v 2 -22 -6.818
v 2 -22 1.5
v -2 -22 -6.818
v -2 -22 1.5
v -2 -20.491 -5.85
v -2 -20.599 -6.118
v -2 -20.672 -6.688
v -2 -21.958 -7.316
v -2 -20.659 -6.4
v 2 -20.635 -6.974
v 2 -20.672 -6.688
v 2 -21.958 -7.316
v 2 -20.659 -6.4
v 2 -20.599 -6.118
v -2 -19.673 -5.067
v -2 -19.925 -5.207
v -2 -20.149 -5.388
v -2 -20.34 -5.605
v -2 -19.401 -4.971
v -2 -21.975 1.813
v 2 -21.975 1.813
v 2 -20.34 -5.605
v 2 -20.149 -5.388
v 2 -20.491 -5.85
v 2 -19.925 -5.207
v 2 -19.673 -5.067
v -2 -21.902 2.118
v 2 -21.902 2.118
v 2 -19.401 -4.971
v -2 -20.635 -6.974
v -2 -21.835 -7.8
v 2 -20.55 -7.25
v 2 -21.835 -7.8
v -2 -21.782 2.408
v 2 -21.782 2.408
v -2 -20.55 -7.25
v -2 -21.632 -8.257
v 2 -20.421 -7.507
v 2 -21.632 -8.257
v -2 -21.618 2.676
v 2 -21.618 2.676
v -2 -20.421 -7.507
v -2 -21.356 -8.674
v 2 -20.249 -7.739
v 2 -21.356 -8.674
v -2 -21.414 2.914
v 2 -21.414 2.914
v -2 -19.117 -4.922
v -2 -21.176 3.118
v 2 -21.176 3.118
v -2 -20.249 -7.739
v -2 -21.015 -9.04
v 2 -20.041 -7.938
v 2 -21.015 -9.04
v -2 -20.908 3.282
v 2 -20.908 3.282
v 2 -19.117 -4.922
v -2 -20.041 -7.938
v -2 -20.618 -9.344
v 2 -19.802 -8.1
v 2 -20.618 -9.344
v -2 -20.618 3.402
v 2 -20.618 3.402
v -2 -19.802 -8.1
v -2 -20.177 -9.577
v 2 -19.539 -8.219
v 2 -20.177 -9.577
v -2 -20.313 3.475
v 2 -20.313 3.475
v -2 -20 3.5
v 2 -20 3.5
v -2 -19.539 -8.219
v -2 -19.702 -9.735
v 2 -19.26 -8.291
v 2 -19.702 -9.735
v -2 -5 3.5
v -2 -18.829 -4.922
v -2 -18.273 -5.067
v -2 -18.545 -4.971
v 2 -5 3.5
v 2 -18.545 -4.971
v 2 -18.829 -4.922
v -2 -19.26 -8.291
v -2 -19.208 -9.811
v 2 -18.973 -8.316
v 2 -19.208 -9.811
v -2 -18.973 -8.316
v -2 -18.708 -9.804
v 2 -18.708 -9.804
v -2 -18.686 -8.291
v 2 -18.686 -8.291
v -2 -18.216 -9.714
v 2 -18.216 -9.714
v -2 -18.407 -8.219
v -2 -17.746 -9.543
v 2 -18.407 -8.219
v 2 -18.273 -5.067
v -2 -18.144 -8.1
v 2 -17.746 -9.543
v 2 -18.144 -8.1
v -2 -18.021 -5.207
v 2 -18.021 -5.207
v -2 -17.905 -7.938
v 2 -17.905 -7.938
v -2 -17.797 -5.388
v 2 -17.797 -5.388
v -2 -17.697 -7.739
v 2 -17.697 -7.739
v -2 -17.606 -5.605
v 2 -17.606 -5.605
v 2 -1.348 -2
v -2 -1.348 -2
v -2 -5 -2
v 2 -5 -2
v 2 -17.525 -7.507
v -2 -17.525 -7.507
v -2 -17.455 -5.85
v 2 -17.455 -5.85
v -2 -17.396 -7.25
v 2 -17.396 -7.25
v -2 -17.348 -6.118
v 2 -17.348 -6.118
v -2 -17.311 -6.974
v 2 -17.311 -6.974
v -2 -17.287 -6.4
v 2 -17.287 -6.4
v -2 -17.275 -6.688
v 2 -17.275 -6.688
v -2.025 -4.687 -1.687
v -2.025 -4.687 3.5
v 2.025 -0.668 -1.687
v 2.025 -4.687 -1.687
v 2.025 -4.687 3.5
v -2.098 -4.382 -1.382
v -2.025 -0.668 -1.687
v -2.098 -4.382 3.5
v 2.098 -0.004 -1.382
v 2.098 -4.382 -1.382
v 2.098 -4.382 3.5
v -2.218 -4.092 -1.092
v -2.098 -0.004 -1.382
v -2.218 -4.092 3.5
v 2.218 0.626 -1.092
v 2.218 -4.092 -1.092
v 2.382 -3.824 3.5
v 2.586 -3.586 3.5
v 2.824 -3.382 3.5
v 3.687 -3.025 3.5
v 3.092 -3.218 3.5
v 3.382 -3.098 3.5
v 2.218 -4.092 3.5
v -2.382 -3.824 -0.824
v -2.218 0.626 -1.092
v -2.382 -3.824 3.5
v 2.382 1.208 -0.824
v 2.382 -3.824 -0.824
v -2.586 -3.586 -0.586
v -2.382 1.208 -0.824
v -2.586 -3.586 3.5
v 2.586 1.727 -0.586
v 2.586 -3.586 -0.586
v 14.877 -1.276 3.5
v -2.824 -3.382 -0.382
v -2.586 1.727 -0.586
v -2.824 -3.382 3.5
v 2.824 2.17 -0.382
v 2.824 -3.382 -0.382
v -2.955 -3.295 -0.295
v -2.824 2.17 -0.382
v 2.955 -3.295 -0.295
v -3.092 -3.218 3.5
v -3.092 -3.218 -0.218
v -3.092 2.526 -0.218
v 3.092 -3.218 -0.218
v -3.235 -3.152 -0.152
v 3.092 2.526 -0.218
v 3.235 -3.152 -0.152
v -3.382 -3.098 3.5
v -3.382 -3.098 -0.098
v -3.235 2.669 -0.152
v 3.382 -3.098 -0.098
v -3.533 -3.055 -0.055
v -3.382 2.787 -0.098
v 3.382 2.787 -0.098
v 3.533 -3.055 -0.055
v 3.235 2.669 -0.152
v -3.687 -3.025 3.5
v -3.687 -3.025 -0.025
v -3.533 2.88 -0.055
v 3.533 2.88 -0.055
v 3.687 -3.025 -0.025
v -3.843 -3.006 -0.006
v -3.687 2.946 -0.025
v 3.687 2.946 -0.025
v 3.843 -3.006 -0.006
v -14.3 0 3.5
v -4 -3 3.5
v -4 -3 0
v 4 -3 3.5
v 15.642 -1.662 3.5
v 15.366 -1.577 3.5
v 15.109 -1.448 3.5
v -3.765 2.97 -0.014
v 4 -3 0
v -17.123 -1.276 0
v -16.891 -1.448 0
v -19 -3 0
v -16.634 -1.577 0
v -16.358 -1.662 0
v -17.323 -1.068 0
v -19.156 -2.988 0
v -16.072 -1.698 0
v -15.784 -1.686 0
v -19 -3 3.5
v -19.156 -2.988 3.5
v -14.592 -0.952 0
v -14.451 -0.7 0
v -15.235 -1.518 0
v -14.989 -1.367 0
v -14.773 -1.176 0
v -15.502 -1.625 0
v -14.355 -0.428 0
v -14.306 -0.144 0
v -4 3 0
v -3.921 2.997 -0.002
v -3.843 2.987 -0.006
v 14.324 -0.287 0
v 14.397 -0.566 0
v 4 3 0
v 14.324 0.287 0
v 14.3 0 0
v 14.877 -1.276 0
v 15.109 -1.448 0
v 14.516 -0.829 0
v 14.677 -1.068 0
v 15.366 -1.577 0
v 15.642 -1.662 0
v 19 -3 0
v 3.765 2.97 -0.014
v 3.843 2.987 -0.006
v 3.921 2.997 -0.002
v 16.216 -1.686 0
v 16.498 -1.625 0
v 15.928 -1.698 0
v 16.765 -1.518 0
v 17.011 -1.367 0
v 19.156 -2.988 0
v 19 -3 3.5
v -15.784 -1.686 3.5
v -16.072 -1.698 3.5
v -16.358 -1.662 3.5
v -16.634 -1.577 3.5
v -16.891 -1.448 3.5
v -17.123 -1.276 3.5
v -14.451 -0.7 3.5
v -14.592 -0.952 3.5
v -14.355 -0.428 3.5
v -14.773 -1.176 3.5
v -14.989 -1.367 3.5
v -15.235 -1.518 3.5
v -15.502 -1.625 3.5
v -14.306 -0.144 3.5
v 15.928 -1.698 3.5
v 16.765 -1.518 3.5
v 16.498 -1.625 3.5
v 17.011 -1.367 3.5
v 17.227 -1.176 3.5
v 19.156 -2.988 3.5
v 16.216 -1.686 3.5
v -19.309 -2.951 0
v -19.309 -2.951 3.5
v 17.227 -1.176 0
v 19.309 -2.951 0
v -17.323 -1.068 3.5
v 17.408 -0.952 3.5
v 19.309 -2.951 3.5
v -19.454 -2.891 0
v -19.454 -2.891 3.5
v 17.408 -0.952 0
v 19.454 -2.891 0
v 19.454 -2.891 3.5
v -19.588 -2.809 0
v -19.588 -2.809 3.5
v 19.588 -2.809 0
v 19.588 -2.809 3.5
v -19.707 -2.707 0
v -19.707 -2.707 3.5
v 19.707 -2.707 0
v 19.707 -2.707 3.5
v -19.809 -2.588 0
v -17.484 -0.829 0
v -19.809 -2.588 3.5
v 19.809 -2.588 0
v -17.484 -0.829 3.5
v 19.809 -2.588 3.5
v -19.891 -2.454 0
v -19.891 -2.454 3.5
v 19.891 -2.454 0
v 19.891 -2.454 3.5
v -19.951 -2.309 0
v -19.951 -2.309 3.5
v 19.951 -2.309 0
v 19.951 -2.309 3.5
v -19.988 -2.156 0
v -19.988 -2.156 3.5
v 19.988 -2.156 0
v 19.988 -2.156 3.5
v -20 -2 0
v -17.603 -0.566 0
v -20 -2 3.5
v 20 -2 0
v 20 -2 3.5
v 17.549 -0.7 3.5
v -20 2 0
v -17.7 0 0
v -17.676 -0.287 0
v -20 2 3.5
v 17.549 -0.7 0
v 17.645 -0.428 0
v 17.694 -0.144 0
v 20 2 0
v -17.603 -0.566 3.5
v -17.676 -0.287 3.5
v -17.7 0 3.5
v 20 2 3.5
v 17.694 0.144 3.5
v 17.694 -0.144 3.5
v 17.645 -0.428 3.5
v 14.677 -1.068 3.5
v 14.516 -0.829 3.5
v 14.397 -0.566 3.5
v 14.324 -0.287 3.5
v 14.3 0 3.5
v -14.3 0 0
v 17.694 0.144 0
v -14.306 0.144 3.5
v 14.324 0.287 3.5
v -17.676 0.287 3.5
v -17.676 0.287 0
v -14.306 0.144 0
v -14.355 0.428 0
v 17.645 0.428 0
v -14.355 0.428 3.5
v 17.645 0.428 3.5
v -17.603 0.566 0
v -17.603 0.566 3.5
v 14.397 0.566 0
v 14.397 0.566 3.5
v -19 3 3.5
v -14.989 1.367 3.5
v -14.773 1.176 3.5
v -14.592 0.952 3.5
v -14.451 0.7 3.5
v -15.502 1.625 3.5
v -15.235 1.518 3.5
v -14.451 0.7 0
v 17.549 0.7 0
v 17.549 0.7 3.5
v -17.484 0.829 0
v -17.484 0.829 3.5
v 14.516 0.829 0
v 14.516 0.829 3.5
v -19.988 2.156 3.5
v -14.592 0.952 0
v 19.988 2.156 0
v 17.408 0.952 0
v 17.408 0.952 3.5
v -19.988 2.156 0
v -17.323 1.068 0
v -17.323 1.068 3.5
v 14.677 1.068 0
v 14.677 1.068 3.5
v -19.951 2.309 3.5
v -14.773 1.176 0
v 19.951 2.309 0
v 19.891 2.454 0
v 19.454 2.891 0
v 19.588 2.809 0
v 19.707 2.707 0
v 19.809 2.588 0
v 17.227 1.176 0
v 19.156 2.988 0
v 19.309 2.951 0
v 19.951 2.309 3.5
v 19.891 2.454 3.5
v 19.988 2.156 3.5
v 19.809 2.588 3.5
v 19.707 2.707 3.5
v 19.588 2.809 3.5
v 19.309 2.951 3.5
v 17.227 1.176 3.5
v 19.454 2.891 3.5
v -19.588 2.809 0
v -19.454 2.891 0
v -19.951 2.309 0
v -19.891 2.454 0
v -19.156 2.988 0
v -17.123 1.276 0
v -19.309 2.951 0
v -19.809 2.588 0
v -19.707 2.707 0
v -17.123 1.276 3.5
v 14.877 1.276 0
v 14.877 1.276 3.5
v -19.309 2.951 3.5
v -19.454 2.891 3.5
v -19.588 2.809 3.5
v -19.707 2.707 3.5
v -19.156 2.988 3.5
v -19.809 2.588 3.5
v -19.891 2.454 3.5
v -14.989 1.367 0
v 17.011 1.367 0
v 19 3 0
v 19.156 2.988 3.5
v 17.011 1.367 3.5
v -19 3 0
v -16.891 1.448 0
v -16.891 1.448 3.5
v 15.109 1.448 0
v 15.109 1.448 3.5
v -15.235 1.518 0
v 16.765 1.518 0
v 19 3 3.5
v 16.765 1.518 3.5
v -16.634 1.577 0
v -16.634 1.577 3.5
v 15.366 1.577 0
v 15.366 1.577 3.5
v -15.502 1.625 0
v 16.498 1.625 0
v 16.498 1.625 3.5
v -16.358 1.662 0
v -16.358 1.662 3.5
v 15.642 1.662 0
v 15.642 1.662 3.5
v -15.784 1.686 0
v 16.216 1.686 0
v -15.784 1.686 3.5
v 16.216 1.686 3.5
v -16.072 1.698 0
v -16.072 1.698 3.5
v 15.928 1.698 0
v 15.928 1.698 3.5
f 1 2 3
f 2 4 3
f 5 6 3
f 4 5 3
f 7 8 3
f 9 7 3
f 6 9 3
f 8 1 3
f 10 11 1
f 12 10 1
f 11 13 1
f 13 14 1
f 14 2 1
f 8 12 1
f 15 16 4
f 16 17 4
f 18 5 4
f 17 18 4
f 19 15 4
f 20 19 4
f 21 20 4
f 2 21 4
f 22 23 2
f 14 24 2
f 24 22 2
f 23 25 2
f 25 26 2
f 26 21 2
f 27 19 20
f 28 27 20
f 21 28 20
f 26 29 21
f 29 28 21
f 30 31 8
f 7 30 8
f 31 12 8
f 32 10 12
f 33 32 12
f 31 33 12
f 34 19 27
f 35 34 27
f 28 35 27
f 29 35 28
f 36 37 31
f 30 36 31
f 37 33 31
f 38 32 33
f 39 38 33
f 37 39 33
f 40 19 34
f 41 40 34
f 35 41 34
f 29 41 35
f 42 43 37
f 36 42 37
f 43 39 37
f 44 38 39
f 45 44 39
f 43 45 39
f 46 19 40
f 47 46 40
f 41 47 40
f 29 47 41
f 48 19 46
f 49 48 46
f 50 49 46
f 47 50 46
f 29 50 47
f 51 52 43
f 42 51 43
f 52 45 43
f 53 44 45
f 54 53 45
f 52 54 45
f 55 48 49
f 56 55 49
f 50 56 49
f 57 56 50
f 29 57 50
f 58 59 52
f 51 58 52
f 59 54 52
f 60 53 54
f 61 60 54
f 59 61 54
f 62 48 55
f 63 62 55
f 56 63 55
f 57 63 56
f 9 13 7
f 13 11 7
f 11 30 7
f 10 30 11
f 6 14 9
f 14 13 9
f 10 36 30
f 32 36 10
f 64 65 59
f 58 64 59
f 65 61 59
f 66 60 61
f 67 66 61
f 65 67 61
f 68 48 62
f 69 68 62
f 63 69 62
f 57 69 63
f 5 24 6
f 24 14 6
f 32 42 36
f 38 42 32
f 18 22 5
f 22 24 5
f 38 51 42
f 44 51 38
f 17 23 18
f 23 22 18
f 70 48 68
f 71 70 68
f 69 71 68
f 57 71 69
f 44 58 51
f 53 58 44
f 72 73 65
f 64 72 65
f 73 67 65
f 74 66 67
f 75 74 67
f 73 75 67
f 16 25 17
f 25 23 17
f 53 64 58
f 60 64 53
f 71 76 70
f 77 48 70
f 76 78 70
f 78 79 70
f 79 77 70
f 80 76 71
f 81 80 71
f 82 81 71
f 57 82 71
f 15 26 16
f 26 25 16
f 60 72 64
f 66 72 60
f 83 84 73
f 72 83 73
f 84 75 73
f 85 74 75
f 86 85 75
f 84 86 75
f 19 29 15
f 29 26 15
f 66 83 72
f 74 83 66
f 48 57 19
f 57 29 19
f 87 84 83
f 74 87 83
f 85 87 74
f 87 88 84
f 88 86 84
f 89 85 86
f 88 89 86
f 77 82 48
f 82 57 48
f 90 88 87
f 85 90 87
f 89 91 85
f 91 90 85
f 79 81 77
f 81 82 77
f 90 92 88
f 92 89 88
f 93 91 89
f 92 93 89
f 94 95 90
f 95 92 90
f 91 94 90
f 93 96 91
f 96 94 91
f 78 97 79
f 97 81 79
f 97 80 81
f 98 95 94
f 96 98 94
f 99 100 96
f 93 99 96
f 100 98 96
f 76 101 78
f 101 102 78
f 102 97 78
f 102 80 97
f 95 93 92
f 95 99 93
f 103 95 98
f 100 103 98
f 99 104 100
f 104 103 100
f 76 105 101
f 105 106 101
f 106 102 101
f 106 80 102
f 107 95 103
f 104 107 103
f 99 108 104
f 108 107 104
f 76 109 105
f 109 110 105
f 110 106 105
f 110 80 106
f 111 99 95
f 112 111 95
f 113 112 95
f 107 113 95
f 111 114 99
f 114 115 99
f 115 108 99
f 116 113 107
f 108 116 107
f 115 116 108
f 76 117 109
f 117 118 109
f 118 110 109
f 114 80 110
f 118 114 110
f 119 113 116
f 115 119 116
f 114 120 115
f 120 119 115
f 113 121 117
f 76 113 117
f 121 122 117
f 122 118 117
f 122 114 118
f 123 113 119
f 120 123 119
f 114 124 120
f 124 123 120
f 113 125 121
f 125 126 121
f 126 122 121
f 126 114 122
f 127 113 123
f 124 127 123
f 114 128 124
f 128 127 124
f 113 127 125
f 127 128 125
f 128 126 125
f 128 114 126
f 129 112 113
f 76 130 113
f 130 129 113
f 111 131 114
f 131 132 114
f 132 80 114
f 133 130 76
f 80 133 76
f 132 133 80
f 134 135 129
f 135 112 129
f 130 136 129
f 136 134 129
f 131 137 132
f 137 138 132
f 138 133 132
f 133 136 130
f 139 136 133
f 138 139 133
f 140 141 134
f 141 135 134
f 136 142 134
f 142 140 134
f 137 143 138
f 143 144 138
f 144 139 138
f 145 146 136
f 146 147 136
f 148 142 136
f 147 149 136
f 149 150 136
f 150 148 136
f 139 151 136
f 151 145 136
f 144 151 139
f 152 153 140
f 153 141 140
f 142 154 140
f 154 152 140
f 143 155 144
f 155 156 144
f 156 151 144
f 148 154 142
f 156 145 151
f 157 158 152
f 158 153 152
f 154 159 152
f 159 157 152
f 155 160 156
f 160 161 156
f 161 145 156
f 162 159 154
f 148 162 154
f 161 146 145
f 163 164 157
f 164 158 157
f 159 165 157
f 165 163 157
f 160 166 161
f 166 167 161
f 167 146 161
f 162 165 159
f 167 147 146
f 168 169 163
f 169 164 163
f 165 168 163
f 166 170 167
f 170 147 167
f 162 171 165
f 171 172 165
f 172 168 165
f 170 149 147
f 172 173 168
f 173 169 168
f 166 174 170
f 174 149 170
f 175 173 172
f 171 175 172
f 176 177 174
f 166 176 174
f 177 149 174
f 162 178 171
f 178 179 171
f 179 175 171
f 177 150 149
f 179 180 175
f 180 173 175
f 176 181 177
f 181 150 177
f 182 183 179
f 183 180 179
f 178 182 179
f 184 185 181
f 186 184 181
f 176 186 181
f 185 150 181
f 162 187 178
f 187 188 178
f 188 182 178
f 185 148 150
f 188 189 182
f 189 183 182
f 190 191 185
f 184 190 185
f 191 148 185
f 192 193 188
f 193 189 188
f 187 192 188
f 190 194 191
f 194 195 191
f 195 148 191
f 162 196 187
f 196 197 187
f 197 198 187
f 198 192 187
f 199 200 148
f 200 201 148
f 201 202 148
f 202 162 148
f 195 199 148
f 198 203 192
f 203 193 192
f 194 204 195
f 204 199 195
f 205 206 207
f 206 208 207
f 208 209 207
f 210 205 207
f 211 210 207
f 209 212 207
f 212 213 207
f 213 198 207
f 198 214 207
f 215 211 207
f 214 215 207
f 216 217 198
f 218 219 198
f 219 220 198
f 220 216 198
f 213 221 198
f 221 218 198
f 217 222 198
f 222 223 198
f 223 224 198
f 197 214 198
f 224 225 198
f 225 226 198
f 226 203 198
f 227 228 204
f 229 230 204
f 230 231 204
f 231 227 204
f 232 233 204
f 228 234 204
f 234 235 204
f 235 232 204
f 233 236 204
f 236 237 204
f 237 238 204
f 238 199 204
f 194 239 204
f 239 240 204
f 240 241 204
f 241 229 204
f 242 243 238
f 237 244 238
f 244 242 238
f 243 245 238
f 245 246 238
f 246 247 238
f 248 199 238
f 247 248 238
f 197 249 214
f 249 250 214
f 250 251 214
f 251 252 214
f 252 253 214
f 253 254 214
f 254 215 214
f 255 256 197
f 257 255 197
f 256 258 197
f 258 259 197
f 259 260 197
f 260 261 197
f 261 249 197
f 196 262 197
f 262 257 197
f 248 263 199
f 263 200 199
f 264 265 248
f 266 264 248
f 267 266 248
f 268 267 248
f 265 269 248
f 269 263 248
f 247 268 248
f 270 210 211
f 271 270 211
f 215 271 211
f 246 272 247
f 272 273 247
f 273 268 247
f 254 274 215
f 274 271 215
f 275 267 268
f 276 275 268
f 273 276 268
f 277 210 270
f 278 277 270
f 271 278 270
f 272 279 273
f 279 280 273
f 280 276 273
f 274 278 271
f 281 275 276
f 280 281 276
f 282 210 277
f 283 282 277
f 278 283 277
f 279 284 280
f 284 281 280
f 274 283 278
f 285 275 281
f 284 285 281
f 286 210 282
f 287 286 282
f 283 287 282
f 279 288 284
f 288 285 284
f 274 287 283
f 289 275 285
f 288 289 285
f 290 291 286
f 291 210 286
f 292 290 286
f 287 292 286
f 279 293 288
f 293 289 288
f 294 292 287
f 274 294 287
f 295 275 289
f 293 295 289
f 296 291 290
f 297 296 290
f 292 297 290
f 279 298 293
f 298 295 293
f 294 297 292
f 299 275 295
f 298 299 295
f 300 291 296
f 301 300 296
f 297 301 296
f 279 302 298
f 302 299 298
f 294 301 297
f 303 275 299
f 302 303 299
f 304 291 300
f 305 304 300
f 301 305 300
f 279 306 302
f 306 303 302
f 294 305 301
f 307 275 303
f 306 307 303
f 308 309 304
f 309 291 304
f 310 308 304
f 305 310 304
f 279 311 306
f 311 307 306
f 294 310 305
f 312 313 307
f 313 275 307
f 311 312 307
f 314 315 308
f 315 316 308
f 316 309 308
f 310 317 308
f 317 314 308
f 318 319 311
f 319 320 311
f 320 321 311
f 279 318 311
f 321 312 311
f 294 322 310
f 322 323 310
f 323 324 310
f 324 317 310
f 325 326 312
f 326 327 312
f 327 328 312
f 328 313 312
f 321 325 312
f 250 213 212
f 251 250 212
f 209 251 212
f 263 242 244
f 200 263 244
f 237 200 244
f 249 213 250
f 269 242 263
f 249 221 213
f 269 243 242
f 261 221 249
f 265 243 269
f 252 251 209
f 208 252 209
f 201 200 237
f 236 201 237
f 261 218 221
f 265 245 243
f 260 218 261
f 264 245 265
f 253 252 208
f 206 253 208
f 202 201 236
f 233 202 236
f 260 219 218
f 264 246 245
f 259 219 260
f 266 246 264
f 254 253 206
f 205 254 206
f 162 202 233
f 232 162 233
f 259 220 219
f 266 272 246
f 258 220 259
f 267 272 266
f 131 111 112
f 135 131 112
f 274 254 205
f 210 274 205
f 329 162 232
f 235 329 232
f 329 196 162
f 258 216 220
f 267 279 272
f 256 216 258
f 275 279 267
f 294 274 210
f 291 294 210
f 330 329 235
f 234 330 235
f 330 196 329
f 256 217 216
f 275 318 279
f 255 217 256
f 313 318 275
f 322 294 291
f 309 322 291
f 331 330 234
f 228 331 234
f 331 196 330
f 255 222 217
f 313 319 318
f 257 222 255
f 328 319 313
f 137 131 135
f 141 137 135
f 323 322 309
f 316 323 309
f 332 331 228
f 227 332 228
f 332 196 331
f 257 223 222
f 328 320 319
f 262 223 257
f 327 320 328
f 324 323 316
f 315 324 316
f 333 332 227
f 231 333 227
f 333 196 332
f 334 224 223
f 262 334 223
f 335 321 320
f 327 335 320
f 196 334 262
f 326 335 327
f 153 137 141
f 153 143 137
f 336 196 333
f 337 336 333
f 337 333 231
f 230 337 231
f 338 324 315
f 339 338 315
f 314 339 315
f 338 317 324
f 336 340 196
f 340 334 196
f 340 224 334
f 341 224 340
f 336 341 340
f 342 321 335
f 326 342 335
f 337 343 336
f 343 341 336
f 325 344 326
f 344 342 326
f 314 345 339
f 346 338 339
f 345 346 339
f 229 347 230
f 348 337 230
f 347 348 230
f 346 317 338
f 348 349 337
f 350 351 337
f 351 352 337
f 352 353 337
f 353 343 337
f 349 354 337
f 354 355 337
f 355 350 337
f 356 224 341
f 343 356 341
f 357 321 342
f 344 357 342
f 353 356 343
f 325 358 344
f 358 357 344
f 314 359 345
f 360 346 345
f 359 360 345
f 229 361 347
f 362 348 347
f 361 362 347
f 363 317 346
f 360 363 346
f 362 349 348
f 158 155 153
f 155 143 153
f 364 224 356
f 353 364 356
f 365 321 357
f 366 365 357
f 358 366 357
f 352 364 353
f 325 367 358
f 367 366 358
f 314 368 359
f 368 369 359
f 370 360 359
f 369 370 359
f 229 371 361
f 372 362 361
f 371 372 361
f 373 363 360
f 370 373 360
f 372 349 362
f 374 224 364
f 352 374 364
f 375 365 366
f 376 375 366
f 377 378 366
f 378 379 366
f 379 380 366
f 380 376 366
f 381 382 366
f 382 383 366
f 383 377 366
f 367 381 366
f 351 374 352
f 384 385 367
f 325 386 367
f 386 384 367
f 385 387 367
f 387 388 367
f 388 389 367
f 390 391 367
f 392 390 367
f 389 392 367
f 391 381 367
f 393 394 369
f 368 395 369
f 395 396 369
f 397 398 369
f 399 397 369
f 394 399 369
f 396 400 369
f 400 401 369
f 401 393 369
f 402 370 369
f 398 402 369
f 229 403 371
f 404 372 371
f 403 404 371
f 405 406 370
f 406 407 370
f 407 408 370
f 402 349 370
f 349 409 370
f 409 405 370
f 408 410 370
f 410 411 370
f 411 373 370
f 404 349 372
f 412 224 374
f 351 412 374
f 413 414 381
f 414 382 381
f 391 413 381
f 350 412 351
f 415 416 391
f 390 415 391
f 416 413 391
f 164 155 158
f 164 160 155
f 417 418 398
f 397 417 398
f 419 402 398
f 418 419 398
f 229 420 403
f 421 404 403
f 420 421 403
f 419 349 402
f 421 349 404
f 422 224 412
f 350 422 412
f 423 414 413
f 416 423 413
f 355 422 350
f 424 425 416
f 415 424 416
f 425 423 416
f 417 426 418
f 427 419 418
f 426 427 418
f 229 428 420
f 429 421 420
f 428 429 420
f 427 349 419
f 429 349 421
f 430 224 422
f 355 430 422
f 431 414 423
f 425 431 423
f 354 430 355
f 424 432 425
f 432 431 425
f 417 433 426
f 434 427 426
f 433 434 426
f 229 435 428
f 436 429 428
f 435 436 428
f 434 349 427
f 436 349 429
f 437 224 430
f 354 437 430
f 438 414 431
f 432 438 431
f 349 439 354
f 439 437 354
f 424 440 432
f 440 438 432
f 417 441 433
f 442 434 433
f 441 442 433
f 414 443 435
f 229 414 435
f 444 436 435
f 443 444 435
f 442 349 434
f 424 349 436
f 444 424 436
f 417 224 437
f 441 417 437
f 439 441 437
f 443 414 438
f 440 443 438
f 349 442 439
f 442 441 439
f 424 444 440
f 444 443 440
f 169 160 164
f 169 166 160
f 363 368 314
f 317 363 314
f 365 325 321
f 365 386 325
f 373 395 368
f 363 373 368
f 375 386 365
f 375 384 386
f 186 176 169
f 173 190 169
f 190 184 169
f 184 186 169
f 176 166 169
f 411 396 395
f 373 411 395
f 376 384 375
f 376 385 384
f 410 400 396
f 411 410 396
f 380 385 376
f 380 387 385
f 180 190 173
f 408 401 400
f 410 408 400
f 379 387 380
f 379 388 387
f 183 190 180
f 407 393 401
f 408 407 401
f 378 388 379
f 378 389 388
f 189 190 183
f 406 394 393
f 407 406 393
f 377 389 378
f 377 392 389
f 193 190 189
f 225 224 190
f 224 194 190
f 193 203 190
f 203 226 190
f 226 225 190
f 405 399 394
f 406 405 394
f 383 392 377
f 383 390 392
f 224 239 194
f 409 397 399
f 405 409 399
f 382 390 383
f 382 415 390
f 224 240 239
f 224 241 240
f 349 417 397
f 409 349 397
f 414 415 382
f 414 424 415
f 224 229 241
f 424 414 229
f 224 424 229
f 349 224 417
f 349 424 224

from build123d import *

# Parameters (mm, degrees)
SKETCH3_R           = 1.7
BOSS_EXTRUDE1_DEPTH = 3.5
BOSS_EXTRUDE2_DEPTH = 2
FILLET1_R           = 2
SKETCH5_R           = 1.7
CUT_EXTRUDE1_DEPTH  = 4
FILLET2_R           = 3


with BuildPart() as part:
    # Sketch3 → Boss-Extrude1 (new body)
    with BuildSketch(Plane.XY):
        with BuildLine():
            Line((-19, -3), (19, -3))
            ThreePointArc((19, -3), (19.707106781, -2.707106781), (20, -2))
            Line((20, -2), (20, 2))
            ThreePointArc((20, 2), (19.707106781, 2.707106781), (19, 3))
            Line((19, 3), (-19, 3))
            ThreePointArc((-19, 3), (-19.707106781, 2.707106781), (-20, 2))
            Line((-20, 2), (-20, -2))
            ThreePointArc((-20, -2), (-19.707106781, -2.707106781), (-19, -3))
        make_face()
        with Locations((-16, 0)):
            Circle(SKETCH3_R, mode=Mode.SUBTRACT)
        with Locations(Location((16, 0, 0), (0, 0, 180))):
            Circle(SKETCH3_R, mode=Mode.SUBTRACT)
    extrude(amount=BOSS_EXTRUDE1_DEPTH)

    # Sketch4 → Boss-Extrude2 (add, symmetric)
    with BuildSketch(Plane(origin=(0, 0, 0), x_dir=(0, 0, -1), z_dir=(1, 0, 0))):
        Polygon((0, 3), (11.5, -22), (-3.5, -22), (-3.5, 3), align=None)
    extrude(amount=BOSS_EXTRUDE2_DEPTH, both=True)

    # Fillet1
    # the kernel refuses this fillet: 2 mm, written as the material it adds along each edge
    with BuildSketch(Plane(origin=(2, -3, 0), x_dir=(1, 0, 0), z_dir=(0, 0, 1))) as fillet1_piece_1:
        with BuildLine():
            CenterArc((FILLET1_R, -FILLET1_R), FILLET1_R, 90, 90)
            Line((0, -FILLET1_R), (0, 0))
            Line((0, 0), (FILLET1_R, 0))
        make_face()
    extrude(amount=3.5)
    with BuildSketch(Plane(origin=(-2, 3, 0), x_dir=(0, 0, -1), z_dir=(0, -1, 0))) as fillet1_piece_2_section:
        with BuildLine():
            CenterArc((FILLET1_R, -FILLET1_R), FILLET1_R, 90, 90)
            Line((0, -FILLET1_R), (0, 0))
            Line((0, 0), (FILLET1_R, 0))
        make_face()
    fillet1_piece_2 = extrude(amount=6, mode=Mode.PRIVATE)
    fillet1_piece_2 = split(fillet1_piece_2, bisect_by=Plane(origin=(-2.500058987, 0.046625327, -1.35855235), z_dir=(3.171977462044394e-15, -0.4179056082321443, 0.9084904526785746)), keep=Keep.TOP, mode=Mode.PRIVATE)
    add(fillet1_piece_2)
    with BuildSketch(Plane(origin=(2, 3, 0), x_dir=(0, 0, -1), z_dir=(0, -1, 0))) as fillet1_piece_3_section:
        with BuildLine():
            CenterArc((FILLET1_R, FILLET1_R), FILLET1_R, 180, 90)
            Line((0, FILLET1_R), (0, 0))
            Line((0, 0), (FILLET1_R, 0))
        make_face()
    fillet1_piece_3 = extrude(amount=6, mode=Mode.PRIVATE)
    fillet1_piece_3 = split(fillet1_piece_3, bisect_by=Plane(origin=(2.500058987, 0.046625327, -1.35855235), z_dir=(3.171977462044394e-15, -0.4179056082321443, 0.9084904526785746)), keep=Keep.TOP, mode=Mode.PRIVATE)
    add(fillet1_piece_3)
    with BuildSketch(Plane(origin=(-2, -3, 0), x_dir=(-1, 0, 0), z_dir=(0, 0, 1))) as fillet1_piece_4:
        with BuildLine():
            CenterArc((FILLET1_R, FILLET1_R), FILLET1_R, 180, 90)
            Line((0, FILLET1_R), (0, 0))
            Line((0, 0), (FILLET1_R, 0))
        make_face()
    extrude(amount=3.5)
    with BuildSketch(Plane(origin=(2, -3, -5), x_dir=(1, 0, 0), z_dir=(0, 0, 1))) as fillet1_piece_5a_section:
        with BuildLine():
            CenterArc((FILLET1_R, -FILLET1_R), FILLET1_R, 90, 90)
            Line((0, -FILLET1_R), (0, 0))
            Line((0, 0), (FILLET1_R, 0))
        make_face()
    fillet1_piece_5a = extrude(amount=8.5, mode=Mode.PRIVATE)
    fillet1_piece_5a = split(fillet1_piece_5a, bisect_by=Plane(origin=(2.435770174, -3.481600485, 0), z_dir=(0, 0, -1)), keep=Keep.TOP, mode=Mode.PRIVATE)
    fillet1_piece_5a = split(fillet1_piece_5a, bisect_by=Plane(origin=(2.435770174, -2.915610611, -2.721180881), z_dir=(3.171977462044394e-15, -0.4179056082321443, 0.9084904526785746)), keep=Keep.TOP, mode=Mode.PRIVATE)
    with BuildSketch(Plane(origin=(2, 3, 0), x_dir=(0, 0, -1), z_dir=(0, -1, 0))) as fillet1_piece_5b_section:
        with BuildLine():
            CenterArc((FILLET1_R, FILLET1_R), FILLET1_R, 180, 90)
            Line((0, FILLET1_R), (0, 0))
            Line((0, 0), (FILLET1_R, 0))
        make_face()
    fillet1_piece_5b = extrude(amount=11, mode=Mode.PRIVATE)
    fillet1_piece_5b = split(fillet1_piece_5b, bisect_by=Plane(origin=(2.452790229, -3, -0.452790229), z_dir=(0, -1, 0)), keep=Keep.TOP, mode=Mode.PRIVATE)
    fillet1_piece_5 = fillet1_piece_5a & fillet1_piece_5b
    add(fillet1_piece_5)
    with BuildSketch(Plane(origin=(-2, -3, -5), x_dir=(-1, 0, 0), z_dir=(0, 0, 1))) as fillet1_piece_6a_section:
        with BuildLine():
            CenterArc((FILLET1_R, FILLET1_R), FILLET1_R, 180, 90)
            Line((0, FILLET1_R), (0, 0))
            Line((0, 0), (FILLET1_R, 0))
        make_face()
    fillet1_piece_6a = extrude(amount=8.5, mode=Mode.PRIVATE)
    fillet1_piece_6a = split(fillet1_piece_6a, bisect_by=Plane(origin=(-2.435770174, -3.481600485, 0), z_dir=(0, 0, -1)), keep=Keep.TOP, mode=Mode.PRIVATE)
    fillet1_piece_6a = split(fillet1_piece_6a, bisect_by=Plane(origin=(-2.435770174, -2.915610611, -2.721180881), z_dir=(3.171977462044394e-15, -0.4179056082321443, 0.9084904526785746)), keep=Keep.TOP, mode=Mode.PRIVATE)
    with BuildSketch(Plane(origin=(-2, 3, 0), x_dir=(0, 0, -1), z_dir=(0, -1, 0))) as fillet1_piece_6b_section:
        with BuildLine():
            CenterArc((FILLET1_R, -FILLET1_R), FILLET1_R, 90, 90)
            Line((0, -FILLET1_R), (0, 0))
            Line((0, 0), (FILLET1_R, 0))
        make_face()
    fillet1_piece_6b = extrude(amount=11, mode=Mode.PRIVATE)
    fillet1_piece_6b = split(fillet1_piece_6b, bisect_by=Plane(origin=(-2.452790229, -3, -0.452790229), z_dir=(0, -1, 0)), keep=Keep.TOP, mode=Mode.PRIVATE)
    fillet1_piece_6 = fillet1_piece_6a & fillet1_piece_6b
    add(fillet1_piece_6)
    # the kernel refuses this fillet: 2 mm, written as the material it takes off along each edge
    with BuildSketch(Plane(origin=(7, -22, 3.5), x_dir=(0, 0, -1), z_dir=(-1, 0, 0))) as fillet1_2_piece_1:
        with BuildLine():
            CenterArc((FILLET1_R, -FILLET1_R), FILLET1_R, 90, 90)
            Line((0, -FILLET1_R), (0, 0))
            Line((0, 0), (FILLET1_R, 0))
        make_face()
    extrude(amount=14, mode=Mode.SUBTRACT)

    # Sketch5 → Cut-Extrude1 (cut)
    with BuildSketch(Plane(origin=(2, 0, 0), x_dir=(0, 0, -1), z_dir=(1, 0, 0))):
        with Locations((6.615815201, -18.97305612)):
            Circle(SKETCH5_R)
    extrude(amount=-CUT_EXTRUDE1_DEPTH, mode=Mode.SUBTRACT)

    # Fillet2
    fillet2_edges = [part.edges().sort_by_distance(p)[0] for p in [
        (0, -22, -11.5),
    ]]
    fillet(fillet2_edges, radius=FILLET2_R)


solid = part.part
